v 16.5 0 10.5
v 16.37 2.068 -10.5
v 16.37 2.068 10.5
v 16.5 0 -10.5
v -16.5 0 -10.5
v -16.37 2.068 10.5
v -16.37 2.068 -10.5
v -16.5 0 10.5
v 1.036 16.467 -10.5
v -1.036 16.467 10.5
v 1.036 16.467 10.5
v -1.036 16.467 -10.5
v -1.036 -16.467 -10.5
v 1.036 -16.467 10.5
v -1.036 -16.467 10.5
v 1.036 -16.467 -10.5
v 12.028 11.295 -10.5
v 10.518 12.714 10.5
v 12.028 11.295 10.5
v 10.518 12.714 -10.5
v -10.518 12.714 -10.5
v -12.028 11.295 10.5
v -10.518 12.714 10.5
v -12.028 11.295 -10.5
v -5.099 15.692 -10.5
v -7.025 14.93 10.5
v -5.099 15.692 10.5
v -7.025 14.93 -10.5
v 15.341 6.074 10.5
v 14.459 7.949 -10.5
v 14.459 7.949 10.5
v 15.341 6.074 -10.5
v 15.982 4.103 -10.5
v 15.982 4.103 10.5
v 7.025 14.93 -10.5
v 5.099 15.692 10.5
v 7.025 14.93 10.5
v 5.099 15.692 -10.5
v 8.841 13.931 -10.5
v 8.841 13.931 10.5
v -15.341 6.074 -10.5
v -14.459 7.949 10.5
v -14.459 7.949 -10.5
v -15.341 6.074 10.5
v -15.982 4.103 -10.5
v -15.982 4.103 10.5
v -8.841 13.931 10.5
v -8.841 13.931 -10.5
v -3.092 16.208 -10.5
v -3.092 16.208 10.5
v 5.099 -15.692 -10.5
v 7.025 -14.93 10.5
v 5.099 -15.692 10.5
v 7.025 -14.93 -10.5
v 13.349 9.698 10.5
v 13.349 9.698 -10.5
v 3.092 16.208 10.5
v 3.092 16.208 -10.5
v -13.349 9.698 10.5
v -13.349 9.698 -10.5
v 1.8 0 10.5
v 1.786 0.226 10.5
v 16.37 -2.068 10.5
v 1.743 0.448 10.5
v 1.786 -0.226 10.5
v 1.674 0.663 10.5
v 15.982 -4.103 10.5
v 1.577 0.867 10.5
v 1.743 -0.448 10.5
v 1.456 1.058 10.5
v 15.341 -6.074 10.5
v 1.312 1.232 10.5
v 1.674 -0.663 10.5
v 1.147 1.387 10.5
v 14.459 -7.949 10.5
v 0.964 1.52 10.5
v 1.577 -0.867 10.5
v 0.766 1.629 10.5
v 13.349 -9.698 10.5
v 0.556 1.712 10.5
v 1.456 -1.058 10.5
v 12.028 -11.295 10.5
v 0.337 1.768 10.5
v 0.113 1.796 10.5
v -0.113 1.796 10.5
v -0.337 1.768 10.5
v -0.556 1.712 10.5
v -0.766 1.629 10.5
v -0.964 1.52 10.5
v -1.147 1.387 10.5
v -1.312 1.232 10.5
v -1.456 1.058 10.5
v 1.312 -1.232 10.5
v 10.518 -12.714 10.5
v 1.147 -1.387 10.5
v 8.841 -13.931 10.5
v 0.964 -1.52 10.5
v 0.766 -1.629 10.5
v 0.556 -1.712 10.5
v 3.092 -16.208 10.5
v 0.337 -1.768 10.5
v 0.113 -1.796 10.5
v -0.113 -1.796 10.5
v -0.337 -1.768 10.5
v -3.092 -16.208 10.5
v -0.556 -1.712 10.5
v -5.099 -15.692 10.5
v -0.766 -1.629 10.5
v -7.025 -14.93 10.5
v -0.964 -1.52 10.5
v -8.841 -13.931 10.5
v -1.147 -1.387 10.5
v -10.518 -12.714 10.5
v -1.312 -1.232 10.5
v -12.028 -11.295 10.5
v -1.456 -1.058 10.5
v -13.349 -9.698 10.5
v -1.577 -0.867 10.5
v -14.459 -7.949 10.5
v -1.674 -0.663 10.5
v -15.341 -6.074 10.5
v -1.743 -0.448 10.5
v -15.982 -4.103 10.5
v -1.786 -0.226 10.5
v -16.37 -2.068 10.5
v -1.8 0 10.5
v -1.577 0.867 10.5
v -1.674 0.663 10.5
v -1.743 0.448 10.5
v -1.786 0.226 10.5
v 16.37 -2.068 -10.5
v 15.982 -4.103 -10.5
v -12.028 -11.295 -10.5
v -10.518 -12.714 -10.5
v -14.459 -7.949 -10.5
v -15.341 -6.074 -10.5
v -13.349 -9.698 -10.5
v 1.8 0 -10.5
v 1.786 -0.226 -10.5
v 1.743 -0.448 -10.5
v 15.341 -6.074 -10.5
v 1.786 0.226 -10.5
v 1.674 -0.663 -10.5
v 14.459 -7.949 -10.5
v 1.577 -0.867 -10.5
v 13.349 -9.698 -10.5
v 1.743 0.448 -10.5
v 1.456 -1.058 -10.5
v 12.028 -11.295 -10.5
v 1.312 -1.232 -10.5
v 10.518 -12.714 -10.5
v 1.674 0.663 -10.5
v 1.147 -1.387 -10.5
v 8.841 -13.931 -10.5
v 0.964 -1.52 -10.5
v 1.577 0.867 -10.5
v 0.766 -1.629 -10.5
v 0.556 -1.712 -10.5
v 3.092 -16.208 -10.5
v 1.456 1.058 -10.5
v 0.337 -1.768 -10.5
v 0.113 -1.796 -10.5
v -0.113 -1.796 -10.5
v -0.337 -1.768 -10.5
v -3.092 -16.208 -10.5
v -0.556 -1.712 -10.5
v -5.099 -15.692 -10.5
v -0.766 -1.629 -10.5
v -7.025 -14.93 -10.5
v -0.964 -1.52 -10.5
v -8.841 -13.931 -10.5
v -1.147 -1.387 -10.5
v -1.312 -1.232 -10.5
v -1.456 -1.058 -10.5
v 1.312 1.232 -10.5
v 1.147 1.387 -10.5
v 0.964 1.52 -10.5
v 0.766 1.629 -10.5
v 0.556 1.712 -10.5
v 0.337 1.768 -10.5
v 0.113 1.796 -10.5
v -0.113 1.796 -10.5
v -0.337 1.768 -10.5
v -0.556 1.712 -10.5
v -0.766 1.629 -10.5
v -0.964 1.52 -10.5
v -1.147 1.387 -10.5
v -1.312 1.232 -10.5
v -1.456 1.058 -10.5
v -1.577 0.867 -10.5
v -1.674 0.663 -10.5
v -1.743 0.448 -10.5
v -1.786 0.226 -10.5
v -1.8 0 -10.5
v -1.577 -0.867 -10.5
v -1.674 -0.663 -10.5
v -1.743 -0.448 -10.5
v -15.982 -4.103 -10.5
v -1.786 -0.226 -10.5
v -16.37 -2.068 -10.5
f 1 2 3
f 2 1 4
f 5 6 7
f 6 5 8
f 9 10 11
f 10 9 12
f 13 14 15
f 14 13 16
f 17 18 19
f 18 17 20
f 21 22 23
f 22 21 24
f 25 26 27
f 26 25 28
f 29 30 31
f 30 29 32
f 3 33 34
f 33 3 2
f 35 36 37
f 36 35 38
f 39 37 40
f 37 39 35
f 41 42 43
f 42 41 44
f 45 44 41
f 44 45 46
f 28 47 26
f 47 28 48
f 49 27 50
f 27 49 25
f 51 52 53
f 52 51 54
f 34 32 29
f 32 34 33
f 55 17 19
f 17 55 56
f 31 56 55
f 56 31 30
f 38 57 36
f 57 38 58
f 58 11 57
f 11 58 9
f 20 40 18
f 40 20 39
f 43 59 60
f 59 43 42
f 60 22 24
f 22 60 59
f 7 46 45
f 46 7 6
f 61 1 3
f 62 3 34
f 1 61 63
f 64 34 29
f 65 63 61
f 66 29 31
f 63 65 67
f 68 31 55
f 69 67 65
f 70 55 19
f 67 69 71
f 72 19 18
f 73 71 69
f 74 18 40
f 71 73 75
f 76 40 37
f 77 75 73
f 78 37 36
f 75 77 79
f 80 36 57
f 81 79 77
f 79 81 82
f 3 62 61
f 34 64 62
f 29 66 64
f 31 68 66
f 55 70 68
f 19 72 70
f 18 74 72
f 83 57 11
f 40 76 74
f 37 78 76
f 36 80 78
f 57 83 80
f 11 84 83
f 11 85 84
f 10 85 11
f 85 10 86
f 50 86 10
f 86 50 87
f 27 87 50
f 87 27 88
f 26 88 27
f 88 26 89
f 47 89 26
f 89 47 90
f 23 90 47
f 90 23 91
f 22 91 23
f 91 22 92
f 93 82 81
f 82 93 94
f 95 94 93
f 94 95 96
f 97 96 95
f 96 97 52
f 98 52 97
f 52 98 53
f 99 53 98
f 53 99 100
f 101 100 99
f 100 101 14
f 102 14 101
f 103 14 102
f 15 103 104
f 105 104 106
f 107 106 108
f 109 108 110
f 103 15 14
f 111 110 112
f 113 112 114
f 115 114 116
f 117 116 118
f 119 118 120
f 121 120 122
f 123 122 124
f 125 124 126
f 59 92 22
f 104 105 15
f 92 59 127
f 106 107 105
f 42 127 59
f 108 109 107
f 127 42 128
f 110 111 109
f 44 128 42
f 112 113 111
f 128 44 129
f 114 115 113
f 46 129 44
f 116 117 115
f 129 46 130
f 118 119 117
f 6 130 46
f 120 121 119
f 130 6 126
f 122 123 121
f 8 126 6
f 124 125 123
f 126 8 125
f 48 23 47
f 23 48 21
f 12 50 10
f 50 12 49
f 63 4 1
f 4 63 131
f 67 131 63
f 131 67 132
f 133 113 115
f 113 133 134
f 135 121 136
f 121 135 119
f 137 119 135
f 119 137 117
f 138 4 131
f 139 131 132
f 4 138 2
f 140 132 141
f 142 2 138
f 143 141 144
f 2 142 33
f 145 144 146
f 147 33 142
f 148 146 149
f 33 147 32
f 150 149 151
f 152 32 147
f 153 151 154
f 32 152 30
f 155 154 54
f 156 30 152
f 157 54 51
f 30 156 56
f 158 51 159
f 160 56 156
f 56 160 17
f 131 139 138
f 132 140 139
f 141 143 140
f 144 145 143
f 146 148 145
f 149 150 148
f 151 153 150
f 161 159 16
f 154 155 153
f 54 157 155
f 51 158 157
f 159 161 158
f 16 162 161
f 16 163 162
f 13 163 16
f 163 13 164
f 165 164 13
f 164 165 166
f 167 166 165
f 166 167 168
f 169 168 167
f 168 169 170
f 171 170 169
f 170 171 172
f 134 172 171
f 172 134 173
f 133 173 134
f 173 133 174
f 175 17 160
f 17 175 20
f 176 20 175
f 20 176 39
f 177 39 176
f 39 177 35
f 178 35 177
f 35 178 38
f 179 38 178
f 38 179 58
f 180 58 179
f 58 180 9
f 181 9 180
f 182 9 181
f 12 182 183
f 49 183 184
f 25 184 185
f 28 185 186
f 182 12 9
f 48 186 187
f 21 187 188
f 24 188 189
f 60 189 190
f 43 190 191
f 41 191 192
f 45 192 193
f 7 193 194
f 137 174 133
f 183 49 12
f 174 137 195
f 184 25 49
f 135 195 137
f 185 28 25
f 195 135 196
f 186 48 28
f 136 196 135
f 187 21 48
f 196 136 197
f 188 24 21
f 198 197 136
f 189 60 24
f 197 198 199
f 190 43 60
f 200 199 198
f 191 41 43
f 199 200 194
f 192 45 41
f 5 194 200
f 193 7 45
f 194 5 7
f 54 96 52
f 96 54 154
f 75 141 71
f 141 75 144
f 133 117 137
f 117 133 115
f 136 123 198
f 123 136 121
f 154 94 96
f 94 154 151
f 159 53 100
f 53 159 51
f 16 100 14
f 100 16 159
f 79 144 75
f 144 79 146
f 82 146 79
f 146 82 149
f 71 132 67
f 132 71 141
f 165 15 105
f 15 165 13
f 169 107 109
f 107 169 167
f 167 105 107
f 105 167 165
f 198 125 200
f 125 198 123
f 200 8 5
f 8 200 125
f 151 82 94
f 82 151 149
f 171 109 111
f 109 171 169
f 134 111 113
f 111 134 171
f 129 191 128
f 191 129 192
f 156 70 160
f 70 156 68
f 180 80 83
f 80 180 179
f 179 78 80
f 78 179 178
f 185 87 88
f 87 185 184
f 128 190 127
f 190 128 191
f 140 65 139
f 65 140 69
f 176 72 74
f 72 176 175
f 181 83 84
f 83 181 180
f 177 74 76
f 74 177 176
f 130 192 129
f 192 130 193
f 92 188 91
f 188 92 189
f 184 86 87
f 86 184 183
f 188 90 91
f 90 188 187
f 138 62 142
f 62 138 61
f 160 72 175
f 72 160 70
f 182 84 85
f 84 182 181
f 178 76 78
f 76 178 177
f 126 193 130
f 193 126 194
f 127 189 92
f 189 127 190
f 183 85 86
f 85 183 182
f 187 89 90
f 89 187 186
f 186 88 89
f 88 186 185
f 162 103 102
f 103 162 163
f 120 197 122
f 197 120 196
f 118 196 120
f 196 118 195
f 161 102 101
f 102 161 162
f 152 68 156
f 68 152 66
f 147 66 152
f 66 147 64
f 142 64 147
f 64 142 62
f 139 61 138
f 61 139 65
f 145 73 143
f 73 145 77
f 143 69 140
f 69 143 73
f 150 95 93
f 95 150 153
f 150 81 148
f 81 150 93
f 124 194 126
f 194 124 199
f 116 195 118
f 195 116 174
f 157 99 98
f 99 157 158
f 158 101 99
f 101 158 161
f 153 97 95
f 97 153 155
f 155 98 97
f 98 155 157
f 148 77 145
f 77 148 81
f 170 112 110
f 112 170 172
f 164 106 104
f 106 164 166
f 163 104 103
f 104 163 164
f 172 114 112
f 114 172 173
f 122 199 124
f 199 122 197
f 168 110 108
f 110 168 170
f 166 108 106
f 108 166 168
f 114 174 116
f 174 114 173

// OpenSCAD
$fn = 50;


difference() {
	union() {
		translate(v = [0, 0, -10.5000000000]) {
			cylinder(h = 21, r = 16.5000000000);
		}
	}
	union() {
		translate(v = [0, 0, -100.0000000000]) {
			cylinder(h = 200, r = 1.8000000000);
		}
	}
}
